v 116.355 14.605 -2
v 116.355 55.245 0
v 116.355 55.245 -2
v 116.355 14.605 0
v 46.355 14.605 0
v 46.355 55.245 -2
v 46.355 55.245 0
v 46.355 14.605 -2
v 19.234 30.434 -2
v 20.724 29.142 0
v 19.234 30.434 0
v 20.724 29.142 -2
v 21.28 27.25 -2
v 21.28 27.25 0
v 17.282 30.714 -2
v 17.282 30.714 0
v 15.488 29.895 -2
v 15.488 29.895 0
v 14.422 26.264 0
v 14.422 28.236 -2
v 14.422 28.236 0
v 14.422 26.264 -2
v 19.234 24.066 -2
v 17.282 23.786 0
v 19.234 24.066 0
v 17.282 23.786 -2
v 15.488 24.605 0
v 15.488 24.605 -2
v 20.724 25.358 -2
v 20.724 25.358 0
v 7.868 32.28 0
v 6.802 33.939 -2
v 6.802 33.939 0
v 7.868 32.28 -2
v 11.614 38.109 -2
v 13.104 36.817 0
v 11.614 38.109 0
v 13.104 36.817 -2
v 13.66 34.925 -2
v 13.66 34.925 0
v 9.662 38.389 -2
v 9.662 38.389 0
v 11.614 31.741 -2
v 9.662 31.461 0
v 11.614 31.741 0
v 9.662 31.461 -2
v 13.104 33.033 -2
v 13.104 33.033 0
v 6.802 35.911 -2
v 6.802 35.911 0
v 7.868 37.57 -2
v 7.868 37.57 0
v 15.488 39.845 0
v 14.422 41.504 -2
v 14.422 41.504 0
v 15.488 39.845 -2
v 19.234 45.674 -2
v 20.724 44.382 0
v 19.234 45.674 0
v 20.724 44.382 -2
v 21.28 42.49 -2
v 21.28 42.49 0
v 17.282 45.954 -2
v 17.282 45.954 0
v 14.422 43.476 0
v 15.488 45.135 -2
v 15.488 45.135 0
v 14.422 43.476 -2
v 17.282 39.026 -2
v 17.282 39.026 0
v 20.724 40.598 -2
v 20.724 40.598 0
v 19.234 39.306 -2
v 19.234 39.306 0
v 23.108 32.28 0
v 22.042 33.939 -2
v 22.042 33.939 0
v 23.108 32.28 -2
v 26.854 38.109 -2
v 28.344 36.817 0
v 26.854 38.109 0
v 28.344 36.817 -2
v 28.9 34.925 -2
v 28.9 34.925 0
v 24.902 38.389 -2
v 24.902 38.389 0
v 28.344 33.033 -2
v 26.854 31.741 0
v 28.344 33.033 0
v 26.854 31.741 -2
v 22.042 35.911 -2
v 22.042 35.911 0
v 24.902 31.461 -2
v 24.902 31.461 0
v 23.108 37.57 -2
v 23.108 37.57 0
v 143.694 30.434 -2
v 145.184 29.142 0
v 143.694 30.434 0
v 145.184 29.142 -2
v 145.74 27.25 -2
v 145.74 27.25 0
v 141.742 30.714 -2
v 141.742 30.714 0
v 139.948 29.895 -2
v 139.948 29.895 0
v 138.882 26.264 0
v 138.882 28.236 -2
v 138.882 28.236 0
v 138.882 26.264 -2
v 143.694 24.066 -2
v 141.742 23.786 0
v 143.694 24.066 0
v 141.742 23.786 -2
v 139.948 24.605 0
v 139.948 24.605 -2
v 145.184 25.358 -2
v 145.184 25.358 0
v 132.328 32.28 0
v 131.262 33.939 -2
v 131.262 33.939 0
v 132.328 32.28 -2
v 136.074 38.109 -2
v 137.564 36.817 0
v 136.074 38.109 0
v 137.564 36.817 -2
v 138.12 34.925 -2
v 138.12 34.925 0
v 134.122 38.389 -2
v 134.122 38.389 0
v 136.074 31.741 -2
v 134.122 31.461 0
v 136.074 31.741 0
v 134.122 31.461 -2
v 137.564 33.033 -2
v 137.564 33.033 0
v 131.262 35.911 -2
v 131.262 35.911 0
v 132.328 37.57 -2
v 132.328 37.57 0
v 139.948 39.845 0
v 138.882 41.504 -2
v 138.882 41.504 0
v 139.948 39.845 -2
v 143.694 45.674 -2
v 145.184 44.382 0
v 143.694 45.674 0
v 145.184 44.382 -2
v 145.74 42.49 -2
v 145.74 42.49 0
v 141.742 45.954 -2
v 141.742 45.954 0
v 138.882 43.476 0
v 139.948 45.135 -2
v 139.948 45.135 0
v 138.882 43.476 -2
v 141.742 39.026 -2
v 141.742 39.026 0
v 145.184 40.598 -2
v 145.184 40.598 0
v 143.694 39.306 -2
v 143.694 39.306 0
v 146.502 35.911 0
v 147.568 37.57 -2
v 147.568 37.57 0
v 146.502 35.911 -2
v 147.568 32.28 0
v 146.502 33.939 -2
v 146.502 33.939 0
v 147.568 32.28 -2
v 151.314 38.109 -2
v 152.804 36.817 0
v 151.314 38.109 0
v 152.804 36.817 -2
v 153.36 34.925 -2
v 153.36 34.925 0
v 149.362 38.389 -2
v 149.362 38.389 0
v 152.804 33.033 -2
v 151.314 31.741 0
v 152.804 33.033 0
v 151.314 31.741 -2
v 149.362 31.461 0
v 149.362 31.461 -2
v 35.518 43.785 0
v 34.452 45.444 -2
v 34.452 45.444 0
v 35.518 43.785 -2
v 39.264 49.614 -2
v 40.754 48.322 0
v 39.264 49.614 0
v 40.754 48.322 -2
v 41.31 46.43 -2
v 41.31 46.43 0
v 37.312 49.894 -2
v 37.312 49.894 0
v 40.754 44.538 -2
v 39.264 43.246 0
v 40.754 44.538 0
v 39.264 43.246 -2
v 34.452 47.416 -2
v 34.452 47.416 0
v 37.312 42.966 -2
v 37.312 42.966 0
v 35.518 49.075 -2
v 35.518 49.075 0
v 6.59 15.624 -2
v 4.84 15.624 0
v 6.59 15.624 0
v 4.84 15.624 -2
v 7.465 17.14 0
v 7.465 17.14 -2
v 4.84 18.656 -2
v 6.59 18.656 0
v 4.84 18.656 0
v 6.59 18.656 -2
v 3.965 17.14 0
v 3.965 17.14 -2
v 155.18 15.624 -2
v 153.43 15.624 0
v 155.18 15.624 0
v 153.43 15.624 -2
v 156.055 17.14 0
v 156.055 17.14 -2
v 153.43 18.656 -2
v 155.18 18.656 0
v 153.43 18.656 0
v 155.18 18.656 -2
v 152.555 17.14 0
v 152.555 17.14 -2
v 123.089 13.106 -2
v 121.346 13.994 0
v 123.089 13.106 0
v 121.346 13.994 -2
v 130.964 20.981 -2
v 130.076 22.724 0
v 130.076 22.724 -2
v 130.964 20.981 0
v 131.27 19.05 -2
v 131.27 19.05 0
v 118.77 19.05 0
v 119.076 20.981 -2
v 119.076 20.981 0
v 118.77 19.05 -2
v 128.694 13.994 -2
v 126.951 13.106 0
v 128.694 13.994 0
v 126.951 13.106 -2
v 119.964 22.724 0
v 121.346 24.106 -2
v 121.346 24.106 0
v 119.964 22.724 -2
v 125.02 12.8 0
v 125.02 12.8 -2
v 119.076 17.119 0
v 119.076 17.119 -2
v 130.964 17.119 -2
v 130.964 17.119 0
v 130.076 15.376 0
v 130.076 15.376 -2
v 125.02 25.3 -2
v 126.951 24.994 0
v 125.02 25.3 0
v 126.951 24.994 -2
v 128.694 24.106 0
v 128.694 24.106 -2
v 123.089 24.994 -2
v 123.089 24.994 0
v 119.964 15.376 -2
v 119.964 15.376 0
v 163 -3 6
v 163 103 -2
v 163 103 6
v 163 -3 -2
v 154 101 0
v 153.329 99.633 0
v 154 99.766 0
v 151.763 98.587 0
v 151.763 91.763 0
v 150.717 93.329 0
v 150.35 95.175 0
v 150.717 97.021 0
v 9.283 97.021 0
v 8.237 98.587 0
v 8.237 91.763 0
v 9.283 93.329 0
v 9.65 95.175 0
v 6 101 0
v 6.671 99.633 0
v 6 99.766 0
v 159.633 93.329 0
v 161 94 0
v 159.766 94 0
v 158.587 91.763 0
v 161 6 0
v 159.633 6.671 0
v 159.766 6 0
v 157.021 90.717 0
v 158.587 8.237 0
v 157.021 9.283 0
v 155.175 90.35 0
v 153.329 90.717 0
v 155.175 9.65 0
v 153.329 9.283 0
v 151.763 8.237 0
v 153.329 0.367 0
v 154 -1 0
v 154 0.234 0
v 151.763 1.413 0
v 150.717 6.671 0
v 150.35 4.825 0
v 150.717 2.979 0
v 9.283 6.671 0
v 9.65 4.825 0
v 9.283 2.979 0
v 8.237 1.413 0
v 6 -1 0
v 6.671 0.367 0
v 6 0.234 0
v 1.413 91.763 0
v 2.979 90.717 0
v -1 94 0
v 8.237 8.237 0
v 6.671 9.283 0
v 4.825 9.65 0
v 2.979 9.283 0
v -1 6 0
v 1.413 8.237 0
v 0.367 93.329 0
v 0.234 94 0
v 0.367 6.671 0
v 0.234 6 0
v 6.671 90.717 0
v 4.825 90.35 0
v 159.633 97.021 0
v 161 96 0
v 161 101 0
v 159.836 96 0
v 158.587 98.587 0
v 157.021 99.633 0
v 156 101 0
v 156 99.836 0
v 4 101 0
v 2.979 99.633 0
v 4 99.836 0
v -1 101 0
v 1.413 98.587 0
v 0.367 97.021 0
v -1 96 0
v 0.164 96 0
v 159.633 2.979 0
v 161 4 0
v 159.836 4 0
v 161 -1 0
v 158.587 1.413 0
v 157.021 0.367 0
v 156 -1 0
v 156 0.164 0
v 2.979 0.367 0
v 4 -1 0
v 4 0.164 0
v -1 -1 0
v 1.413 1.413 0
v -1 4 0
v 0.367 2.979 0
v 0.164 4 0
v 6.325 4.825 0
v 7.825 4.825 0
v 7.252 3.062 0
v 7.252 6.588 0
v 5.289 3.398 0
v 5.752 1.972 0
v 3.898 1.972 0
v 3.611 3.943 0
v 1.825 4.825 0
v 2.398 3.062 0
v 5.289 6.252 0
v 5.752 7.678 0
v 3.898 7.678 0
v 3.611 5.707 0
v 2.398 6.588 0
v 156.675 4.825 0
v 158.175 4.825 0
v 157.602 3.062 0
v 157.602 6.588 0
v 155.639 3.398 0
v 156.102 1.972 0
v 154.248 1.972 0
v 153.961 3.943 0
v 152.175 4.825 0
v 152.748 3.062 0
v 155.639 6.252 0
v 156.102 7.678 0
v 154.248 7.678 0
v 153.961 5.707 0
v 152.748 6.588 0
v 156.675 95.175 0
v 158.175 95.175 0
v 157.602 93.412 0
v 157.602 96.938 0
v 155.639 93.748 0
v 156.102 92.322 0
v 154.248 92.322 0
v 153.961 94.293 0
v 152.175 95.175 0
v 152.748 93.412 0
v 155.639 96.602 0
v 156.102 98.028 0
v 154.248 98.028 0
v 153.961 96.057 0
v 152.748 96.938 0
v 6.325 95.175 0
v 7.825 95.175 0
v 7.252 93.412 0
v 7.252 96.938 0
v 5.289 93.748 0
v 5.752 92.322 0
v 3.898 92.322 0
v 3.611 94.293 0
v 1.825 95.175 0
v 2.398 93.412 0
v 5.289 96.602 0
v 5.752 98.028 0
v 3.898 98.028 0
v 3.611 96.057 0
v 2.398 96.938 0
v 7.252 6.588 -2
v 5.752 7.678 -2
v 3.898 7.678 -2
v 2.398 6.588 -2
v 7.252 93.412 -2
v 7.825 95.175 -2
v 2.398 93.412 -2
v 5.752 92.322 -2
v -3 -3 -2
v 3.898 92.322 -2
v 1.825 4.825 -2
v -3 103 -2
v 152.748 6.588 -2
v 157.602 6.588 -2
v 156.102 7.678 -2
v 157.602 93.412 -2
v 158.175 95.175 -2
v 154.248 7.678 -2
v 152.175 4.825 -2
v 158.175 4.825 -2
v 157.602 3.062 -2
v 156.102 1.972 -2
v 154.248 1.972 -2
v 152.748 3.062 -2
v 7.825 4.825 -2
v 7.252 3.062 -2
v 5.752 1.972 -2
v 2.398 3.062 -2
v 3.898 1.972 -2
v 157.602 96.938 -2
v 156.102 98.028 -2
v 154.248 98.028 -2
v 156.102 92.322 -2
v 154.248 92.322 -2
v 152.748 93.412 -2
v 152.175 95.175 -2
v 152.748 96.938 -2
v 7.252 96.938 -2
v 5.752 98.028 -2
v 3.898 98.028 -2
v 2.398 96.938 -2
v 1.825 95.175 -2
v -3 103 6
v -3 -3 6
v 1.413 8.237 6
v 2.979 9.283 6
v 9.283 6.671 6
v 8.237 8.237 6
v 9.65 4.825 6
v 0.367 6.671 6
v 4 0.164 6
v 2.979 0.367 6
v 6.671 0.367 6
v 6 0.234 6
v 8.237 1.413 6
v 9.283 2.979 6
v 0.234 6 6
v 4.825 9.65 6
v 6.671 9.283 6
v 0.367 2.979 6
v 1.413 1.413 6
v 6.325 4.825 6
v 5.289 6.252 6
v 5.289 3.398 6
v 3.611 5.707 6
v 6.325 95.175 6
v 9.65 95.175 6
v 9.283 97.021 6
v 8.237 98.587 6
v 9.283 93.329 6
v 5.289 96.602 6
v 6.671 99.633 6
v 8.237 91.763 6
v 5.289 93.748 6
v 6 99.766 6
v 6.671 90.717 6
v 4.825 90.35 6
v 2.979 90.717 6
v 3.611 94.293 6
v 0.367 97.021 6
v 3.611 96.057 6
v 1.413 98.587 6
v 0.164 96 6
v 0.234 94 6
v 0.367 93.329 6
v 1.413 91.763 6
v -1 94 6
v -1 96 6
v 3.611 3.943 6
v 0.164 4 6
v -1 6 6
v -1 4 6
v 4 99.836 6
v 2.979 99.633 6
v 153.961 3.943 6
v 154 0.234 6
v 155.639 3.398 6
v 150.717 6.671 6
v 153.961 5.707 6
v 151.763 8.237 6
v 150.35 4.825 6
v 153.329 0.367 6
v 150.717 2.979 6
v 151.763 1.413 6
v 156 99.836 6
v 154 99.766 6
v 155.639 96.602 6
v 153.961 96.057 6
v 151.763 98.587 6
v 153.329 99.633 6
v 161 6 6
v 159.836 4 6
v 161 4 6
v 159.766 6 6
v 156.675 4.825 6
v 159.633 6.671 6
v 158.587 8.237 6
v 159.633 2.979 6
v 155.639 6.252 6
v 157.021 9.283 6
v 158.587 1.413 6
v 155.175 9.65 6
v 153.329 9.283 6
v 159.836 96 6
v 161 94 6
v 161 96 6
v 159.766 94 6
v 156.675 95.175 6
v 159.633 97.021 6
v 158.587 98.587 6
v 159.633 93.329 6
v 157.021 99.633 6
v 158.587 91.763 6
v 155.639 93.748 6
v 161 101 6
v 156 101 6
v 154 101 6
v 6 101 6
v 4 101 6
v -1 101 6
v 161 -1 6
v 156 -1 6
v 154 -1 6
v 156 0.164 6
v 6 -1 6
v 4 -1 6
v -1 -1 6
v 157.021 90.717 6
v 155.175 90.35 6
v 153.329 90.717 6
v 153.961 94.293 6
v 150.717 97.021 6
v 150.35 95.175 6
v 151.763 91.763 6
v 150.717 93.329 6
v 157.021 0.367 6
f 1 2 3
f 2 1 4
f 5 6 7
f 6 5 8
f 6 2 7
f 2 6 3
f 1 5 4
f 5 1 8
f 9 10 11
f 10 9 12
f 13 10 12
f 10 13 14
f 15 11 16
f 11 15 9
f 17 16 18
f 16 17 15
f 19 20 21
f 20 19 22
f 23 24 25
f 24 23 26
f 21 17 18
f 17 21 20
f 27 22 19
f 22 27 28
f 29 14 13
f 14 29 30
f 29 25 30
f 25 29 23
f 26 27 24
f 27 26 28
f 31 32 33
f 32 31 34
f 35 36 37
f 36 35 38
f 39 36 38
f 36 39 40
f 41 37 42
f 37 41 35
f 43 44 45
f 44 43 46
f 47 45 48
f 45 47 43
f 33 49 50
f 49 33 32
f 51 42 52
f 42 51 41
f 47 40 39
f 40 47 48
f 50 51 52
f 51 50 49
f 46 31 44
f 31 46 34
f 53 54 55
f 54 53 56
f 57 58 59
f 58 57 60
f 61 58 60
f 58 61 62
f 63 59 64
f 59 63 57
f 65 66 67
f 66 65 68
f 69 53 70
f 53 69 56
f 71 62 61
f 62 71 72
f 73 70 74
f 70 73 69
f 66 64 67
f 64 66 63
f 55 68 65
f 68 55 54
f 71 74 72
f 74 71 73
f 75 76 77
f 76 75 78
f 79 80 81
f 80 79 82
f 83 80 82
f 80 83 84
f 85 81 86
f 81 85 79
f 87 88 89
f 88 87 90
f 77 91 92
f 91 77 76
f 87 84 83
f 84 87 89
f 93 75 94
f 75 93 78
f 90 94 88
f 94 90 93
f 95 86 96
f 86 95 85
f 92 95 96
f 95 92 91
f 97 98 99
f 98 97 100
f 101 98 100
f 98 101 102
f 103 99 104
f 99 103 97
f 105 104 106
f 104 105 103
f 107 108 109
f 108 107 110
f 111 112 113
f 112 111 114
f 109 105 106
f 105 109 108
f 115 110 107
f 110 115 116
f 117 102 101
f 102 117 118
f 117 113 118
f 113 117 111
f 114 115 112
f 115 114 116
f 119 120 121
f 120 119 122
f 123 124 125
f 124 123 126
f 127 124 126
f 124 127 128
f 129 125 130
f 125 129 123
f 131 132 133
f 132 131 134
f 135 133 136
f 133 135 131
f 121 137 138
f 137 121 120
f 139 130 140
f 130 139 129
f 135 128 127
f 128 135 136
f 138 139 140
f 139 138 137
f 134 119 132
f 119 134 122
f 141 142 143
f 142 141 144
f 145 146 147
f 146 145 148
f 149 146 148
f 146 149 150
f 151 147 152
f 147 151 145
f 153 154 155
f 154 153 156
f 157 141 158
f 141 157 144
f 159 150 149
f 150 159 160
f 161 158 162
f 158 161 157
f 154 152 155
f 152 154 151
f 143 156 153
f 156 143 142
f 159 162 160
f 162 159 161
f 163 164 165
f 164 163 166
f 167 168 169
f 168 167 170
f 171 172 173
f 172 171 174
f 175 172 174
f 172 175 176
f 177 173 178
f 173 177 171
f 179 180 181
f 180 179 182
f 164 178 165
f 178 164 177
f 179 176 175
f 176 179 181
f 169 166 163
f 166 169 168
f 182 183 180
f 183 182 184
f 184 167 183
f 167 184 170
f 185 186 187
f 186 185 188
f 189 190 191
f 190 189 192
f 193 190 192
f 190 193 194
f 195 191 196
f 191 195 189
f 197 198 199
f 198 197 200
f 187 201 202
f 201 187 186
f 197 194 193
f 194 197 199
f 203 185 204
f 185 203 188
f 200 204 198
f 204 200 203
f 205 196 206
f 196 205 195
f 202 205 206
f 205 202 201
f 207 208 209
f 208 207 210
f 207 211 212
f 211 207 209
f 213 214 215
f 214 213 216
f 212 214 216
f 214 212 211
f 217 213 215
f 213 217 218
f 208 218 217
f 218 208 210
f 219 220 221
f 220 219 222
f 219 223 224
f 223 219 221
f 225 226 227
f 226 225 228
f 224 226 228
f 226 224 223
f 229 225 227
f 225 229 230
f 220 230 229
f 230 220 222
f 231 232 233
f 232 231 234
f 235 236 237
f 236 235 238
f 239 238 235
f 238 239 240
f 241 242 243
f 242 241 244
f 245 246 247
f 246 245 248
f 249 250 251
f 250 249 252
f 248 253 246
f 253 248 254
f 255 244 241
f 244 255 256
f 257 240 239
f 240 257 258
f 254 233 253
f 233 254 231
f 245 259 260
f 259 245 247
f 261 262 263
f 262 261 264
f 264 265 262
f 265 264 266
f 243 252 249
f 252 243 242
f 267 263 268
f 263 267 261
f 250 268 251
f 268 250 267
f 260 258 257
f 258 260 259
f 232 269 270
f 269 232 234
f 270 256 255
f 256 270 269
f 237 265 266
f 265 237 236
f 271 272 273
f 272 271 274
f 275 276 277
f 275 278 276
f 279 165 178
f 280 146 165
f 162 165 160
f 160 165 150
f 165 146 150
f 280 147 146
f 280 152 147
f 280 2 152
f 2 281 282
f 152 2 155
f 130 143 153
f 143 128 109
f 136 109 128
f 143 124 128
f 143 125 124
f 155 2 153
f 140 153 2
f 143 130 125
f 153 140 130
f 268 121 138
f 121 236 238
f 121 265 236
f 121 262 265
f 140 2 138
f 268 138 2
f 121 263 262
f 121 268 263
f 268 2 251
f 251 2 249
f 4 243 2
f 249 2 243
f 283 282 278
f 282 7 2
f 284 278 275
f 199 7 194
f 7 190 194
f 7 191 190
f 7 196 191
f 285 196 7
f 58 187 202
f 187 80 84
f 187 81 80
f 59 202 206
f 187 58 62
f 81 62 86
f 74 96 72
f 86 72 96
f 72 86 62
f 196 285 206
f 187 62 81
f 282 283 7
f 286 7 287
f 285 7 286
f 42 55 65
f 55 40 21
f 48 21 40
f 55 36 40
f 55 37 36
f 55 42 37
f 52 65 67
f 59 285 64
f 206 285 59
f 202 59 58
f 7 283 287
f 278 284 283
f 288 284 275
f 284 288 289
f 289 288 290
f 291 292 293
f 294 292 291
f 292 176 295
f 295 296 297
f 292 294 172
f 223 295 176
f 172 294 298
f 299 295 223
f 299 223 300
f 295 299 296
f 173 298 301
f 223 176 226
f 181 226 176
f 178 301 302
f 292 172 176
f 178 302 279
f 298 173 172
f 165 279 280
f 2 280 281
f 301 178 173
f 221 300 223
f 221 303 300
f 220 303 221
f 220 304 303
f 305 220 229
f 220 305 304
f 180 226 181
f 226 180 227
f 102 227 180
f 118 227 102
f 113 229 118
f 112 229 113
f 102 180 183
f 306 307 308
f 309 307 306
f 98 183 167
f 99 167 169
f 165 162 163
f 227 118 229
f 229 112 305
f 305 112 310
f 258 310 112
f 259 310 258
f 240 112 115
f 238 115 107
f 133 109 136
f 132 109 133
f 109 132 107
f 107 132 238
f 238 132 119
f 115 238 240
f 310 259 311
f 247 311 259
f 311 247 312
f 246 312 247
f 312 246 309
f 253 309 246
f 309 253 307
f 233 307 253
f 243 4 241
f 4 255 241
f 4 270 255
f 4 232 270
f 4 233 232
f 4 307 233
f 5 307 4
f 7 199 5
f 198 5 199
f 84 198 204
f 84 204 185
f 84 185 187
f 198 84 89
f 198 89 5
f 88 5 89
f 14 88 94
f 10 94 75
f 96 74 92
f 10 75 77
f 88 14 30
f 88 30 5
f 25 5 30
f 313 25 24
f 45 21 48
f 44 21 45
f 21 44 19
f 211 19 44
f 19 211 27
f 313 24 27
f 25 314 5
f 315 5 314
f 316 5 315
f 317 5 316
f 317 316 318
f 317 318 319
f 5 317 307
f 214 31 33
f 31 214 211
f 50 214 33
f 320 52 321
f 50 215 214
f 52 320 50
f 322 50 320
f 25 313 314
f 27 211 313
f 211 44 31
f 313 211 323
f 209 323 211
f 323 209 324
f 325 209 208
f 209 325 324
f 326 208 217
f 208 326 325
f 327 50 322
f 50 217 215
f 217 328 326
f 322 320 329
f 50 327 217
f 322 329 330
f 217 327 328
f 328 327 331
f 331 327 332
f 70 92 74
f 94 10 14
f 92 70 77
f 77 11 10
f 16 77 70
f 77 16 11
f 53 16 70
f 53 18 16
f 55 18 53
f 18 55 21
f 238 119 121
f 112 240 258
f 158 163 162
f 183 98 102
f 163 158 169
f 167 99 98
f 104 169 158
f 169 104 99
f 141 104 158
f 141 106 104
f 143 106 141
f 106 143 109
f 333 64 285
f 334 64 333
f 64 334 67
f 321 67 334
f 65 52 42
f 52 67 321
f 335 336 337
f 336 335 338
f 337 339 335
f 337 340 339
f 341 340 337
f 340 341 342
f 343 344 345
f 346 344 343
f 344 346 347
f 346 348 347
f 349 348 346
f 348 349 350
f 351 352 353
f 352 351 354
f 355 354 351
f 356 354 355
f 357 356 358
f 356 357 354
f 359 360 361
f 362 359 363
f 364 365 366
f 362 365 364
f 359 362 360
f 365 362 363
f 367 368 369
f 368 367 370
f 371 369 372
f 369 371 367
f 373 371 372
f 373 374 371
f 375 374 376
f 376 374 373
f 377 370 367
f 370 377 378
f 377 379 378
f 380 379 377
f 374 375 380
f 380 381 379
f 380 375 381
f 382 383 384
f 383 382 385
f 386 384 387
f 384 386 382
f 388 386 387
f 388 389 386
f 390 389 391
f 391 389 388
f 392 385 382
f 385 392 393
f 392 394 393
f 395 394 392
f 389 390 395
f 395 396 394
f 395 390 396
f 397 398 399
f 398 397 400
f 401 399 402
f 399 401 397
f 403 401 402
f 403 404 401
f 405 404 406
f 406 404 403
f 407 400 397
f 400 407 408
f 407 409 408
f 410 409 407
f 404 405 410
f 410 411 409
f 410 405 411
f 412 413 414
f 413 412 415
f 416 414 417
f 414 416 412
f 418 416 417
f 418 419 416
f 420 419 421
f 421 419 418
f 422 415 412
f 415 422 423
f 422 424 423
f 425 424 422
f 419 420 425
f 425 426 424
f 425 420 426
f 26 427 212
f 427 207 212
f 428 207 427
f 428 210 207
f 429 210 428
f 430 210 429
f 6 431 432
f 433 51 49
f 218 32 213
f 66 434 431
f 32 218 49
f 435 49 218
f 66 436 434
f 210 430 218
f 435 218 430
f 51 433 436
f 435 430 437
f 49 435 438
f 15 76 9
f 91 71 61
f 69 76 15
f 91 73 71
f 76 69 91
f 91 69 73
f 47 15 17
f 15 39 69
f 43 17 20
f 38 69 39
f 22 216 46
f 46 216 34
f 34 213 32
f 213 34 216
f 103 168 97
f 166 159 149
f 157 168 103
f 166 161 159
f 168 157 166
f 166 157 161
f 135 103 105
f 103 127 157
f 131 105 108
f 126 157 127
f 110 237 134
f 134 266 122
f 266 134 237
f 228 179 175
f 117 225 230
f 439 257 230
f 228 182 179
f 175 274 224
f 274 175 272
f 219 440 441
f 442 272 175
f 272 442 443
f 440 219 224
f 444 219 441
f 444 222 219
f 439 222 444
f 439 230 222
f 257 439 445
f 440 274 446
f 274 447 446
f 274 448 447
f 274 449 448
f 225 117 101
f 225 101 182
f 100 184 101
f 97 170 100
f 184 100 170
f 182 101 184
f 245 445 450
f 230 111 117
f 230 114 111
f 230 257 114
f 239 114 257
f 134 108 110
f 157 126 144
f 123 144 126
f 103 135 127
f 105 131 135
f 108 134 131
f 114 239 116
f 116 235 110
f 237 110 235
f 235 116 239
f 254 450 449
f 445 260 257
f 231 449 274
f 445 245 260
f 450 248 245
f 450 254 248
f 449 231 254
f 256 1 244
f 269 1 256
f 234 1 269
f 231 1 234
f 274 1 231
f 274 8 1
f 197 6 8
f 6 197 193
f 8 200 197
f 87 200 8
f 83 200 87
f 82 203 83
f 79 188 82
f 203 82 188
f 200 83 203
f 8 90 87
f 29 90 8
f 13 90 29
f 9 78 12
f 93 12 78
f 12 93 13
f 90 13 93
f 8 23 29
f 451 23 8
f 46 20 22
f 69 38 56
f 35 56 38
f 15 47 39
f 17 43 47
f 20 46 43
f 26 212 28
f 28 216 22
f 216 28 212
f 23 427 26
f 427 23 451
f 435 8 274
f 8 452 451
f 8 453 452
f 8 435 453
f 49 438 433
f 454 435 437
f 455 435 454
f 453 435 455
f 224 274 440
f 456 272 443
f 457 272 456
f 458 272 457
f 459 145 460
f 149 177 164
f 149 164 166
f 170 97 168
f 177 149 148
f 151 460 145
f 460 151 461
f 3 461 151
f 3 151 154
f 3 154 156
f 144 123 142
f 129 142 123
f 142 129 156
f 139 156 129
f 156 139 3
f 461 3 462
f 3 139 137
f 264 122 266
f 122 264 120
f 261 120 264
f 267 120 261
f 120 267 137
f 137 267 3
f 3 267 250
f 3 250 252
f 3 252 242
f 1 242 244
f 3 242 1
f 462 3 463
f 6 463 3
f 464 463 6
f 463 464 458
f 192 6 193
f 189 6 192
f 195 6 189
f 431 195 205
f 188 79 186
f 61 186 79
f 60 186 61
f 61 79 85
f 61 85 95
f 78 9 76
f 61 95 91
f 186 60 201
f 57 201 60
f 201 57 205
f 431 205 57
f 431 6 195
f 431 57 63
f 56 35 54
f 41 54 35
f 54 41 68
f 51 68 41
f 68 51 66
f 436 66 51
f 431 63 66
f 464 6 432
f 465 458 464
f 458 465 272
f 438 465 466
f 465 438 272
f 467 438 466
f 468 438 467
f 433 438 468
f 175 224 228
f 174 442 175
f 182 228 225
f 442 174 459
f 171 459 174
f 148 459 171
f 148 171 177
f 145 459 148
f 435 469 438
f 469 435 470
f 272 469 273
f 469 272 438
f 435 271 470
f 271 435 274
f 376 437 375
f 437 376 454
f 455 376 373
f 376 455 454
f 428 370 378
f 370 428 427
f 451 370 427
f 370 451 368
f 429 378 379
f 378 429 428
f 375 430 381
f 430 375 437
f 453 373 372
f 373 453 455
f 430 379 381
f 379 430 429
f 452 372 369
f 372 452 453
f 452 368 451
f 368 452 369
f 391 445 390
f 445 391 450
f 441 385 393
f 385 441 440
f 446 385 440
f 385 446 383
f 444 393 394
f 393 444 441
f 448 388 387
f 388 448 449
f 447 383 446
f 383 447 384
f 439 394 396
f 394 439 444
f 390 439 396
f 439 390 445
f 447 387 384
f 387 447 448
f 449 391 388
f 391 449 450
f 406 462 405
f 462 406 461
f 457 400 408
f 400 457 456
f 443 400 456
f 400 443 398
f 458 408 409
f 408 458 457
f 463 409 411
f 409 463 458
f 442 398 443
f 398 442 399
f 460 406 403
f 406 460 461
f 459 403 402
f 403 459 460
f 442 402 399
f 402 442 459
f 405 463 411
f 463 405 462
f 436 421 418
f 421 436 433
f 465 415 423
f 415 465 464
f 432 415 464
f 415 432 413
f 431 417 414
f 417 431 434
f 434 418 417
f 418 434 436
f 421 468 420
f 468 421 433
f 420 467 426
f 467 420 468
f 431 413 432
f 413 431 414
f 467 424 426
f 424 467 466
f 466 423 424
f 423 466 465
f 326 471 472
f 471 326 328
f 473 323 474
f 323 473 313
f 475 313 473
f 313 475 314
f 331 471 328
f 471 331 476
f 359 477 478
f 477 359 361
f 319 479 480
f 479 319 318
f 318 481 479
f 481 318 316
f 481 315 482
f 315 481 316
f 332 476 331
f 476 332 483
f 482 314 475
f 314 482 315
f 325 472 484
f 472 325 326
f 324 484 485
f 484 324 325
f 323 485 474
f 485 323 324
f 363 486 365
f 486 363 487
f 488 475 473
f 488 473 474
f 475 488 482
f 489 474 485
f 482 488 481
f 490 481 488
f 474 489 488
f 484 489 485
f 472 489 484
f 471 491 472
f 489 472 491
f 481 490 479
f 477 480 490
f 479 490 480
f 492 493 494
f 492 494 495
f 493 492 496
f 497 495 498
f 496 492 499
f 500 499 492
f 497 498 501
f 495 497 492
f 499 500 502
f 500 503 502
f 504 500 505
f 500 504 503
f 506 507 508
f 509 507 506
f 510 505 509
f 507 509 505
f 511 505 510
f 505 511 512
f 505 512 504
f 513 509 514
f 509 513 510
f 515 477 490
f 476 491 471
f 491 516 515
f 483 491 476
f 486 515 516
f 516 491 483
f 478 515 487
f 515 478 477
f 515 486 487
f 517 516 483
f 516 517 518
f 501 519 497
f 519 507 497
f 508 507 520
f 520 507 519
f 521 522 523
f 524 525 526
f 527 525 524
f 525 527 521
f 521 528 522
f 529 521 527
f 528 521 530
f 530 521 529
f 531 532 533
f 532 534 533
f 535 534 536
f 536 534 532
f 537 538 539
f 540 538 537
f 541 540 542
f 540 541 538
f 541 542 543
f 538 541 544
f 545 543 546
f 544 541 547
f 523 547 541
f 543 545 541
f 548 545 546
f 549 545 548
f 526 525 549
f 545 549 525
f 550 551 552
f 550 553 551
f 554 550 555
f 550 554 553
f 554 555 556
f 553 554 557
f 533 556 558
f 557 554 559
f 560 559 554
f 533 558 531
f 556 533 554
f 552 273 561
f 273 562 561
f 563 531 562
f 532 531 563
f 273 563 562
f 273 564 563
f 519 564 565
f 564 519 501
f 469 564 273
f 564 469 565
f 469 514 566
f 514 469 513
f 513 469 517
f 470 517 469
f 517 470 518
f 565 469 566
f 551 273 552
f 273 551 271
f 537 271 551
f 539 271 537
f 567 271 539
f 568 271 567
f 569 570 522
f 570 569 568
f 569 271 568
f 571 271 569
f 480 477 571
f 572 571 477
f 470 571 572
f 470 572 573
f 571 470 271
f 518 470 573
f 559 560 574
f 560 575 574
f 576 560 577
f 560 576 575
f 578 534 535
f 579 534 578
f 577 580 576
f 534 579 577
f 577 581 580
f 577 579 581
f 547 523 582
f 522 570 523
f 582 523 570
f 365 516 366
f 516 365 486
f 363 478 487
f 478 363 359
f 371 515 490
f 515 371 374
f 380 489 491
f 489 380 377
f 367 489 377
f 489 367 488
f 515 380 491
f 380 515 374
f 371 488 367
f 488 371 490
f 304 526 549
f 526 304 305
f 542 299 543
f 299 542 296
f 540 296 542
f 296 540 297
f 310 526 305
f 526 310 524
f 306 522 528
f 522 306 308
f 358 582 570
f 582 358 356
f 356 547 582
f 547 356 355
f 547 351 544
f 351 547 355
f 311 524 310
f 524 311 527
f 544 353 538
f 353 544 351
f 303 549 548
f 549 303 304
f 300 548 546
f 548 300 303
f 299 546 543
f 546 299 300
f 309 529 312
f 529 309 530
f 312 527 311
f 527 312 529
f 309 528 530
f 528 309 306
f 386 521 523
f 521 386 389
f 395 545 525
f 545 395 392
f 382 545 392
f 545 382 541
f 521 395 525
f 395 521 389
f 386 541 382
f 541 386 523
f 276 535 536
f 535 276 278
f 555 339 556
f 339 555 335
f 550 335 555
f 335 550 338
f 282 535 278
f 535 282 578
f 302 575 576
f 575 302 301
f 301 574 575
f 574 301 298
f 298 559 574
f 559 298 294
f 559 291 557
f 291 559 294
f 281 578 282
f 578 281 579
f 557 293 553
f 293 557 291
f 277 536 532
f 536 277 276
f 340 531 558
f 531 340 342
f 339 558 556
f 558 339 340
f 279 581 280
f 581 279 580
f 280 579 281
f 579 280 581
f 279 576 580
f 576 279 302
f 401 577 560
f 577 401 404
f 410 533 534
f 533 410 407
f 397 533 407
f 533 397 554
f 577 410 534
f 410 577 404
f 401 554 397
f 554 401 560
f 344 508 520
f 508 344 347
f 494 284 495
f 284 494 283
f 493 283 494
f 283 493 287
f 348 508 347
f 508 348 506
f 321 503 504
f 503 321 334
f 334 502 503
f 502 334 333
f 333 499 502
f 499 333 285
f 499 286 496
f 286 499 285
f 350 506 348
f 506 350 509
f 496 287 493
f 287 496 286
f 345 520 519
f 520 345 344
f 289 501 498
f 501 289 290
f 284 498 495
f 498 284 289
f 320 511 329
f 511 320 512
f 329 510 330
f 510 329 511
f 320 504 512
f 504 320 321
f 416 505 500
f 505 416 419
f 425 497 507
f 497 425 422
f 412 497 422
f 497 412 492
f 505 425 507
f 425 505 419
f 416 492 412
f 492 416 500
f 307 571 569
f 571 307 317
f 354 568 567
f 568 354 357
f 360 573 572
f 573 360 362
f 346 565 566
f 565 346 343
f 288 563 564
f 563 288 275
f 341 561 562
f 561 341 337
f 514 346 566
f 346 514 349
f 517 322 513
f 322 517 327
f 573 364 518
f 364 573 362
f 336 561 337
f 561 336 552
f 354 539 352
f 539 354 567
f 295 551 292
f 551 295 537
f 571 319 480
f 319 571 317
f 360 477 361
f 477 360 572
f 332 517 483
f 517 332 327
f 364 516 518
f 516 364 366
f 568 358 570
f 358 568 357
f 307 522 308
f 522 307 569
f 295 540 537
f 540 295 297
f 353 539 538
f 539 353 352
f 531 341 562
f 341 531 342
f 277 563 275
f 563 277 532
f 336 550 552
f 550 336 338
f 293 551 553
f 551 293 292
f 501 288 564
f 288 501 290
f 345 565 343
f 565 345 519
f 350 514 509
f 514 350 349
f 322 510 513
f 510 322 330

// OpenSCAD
width = 160;
depth = 100;
tall = 20;
short = 6;
holes = 4.825;


// TOP HALF
translate([0, 0, 0]) {

// bottom
translate([-3, -3, -2]) {
    difference() {
        cube([width+6, depth+6, 2], center = false);
        translate([3+holes, 3+holes, -1]) {
            cylinder(4, 3, 3);
        }
        translate([3+width-holes, 3+holes, -1]) {
            cylinder(4, 3, 3);
        }
        translate([3+width-holes, 3+depth-holes, -1]) {
            cylinder(4, 3, 3);
        }
        translate([3+holes, 3+depth-holes, -1]) {
            cylinder(4, 3, 3);
        }
        translate([3, 3, 0]) {
            translate([46.355,14.605,-1]) {
                cube([70,40.64,4], center = false);
            }
            
            translate([17.78, 27.25, -1]) {
                cylinder(4, 3.5, 3.5);
            }
            translate([10.16, 34.925, -1]) {
                cylinder(4, 3.5, 3.5);
            }
            translate([17.78, 42.49, -1]) {
                cylinder(4, 3.5, 3.5);
            }
            translate([25.4, 34.925, -1]) {
                cylinder(4, 3.5, 3.5);
            }
            
            translate([142.24, 27.25, -1]) {
                cylinder(4, 3.5, 3.5);
            }
            translate([134.62, 34.925, -1]) {
                cylinder(4, 3.5, 3.5);
            }
            translate([142.24, 42.49, -1]) {
                cylinder(4, 3.5, 3.5);
            }
            translate([149.86, 34.925, -1]) {
                cylinder(4, 3.5, 3.5);
            }
            
            translate([37.81, 46.43, -1]) {
                cylinder(4, 3.5, 3.5);
            }
            
            translate([5.715, 17.14, -1]) {
                cylinder(4, 1.75, 1.75);
            }
            translate([154.305, 17.14, -1]) {
                cylinder(4, 1.75, 1.75);
            }
            
            translate([125.02, 19.05, -1]) {
                cylinder(4, 6.25, 6.25);
            }
        }
    }
}

// front
translate([-3, -3, 0]) {
    difference() {
        cube([width+6, 2, short], center = false);
    }
}

// back
translate([-3, depth+1, 0]) {
    difference() {
        cube([width+6, 2, short], center = false);
    }
}

// left
translate([-3, -3, 0]) {
    cube([2, depth+6, short], center = false);
}

// right
translate([width+1, -3, 0]) {
    cube([2, depth+6, short], center = false);
}

// front left corner
translate([holes, holes, 0]) {
    difference() {
        cylinder(short, holes, holes);
        translate([0, 0, -1]) {
            cylinder(short+2, 1.5, 1.5);
        }
    }
}
translate([4, -1, 0]) {
    cube([2, 3, short], center = false);
}
translate([-1, 4, 0]) {
    cube([3, 2, short], center = false);
}

// front right corner
translate([width-holes, holes, 0]) {
    difference() {
        cylinder(short, holes, holes);
        translate([0, 0, -1]) {
            cylinder(short+2, 1.5, 1.5);
        }
    }
}
translate([width-6, -1, 0]) {
    cube([2, 3, short], center = false);
}
translate([width-1, 4, 0]) {
    cube([3, 2, short], center = false);
}

// back right corner
translate([width-holes, depth-holes, 0]) {
    difference() {
        cylinder(short, holes, holes);
        translate([0, 0, -1]) {
            cylinder(short+2, 1.5, 1.5);
        }
    }
}
translate([width-6, depth-1, 0]) {
    cube([2, 3, short], center = false);
}
translate([width-1, depth-6, 0]) {
    cube([3, 2, short], center = false);
}

// back left corner
translate([holes, depth-holes, 0]) {
    difference() {
        cylinder(short, holes, holes);
        translate([0, 0, -1]) {
            cylinder(short+2, 1.5, 1.5);
        }
    }
}
translate([4, depth-1, 0]) {
    cube([2, 3, short], center = false);
}
translate([-1, depth-6, 0]) {
    cube([3, 2, short], center = false);
}      
}


/*
// BOTTOM HALF
//translate([0, 120, 0]) {
translate([0, 0, 0]) {
    
// bottom
translate([-3, -3, -2]) {
    difference() {
        cube([width+6, depth+6, 2], center = false);
        //translate([3+holes, 3+holes, -1]) {
        //    cylinder(4, 3, 3);
        //}
        //translate([3+width-holes, 3+holes, -1]) {
        //    cylinder(4, 3, 3);
        //}
        //translate([3+width-holes, 3+depth-holes, -1]) {
        //    cylinder(4, 3, 3);
        //}
        //translate([3+holes, 3+depth-holes, -1]) {
        //    cylinder(4, 3, 3);
        //}
    }
}

// front
translate([-3, -3, 0]) {
    difference() {
        cube([width+6, 2, tall], center = false);
        translate([13, -0.5, 2]) {
            cube([width-20, 3, tall+1], center = false);
        }
    }
}

// back
translate([-3, depth+1, 0]) {
    difference() {
        cube([width+6, 2, tall], center = false);
        translate([13, -0.5, 2]) {
            cube([width-20, 3, tall+1], center = false);
        }
    }
}

// left
translate([-3, -3, 0]) {
    cube([2, depth+6, tall], center = false);
}

// right
translate([width+1, -3, 0]) {
    cube([2, depth+6, tall], center = false);
}

// front left corner
translate([holes, holes, 0]) {
    difference() {
        cylinder(tall-1.75, holes, holes);
        translate([0, 0, 0]) {
            cylinder(tall, 1.5, 1.5);
        }
    }
}
translate([4, -1, 0]) {
    cube([2, 3, tall-1.75], center = false);
}
translate([-1, 4, 0]) {
    cube([3, 2, tall-1.75], center = false);
}

// front right corner
translate([width-holes, holes, 0]) {
    difference() {
        cylinder(tall-1.75, holes, holes);
        translate([0, 0, 0]) {
            cylinder(tall, 1.5, 1.5);
        }
    }
}
translate([width-6, -1, 0]) {
    cube([2, 3, tall-1.75], center = false);
}
translate([width-1, 4, 0]) {
    cube([3, 2, tall-1.75], center = false);
}

// back right corner
translate([width-holes, depth-holes, 0]) {
    difference() {
        cylinder(tall-1.75, holes, holes);
        translate([0, 0, 0]) {
            cylinder(tall, 1.5, 1.5);
        }
    }
}
translate([width-6, depth-1, 0]) {
    cube([2, 3, tall-1.75], center = false);
}
translate([width-1, depth-6, 0]) {
    cube([3, 2, tall-1.75], center = false);
}

// back left corner
translate([holes, depth-holes, 0]) {
    difference() {
        cylinder(tall-1.75, holes, holes);
        translate([0, 0, 0]) {
            cylinder(tall, 1.5, 1.5);
        }
    }
}
translate([4, depth-1, 0]) {
    cube([2, 3, tall-1.75], center = false);
}
translate([-1, depth-6, 0]) {
    cube([3, 2, tall-1.75], center = false);
}
}
*/
